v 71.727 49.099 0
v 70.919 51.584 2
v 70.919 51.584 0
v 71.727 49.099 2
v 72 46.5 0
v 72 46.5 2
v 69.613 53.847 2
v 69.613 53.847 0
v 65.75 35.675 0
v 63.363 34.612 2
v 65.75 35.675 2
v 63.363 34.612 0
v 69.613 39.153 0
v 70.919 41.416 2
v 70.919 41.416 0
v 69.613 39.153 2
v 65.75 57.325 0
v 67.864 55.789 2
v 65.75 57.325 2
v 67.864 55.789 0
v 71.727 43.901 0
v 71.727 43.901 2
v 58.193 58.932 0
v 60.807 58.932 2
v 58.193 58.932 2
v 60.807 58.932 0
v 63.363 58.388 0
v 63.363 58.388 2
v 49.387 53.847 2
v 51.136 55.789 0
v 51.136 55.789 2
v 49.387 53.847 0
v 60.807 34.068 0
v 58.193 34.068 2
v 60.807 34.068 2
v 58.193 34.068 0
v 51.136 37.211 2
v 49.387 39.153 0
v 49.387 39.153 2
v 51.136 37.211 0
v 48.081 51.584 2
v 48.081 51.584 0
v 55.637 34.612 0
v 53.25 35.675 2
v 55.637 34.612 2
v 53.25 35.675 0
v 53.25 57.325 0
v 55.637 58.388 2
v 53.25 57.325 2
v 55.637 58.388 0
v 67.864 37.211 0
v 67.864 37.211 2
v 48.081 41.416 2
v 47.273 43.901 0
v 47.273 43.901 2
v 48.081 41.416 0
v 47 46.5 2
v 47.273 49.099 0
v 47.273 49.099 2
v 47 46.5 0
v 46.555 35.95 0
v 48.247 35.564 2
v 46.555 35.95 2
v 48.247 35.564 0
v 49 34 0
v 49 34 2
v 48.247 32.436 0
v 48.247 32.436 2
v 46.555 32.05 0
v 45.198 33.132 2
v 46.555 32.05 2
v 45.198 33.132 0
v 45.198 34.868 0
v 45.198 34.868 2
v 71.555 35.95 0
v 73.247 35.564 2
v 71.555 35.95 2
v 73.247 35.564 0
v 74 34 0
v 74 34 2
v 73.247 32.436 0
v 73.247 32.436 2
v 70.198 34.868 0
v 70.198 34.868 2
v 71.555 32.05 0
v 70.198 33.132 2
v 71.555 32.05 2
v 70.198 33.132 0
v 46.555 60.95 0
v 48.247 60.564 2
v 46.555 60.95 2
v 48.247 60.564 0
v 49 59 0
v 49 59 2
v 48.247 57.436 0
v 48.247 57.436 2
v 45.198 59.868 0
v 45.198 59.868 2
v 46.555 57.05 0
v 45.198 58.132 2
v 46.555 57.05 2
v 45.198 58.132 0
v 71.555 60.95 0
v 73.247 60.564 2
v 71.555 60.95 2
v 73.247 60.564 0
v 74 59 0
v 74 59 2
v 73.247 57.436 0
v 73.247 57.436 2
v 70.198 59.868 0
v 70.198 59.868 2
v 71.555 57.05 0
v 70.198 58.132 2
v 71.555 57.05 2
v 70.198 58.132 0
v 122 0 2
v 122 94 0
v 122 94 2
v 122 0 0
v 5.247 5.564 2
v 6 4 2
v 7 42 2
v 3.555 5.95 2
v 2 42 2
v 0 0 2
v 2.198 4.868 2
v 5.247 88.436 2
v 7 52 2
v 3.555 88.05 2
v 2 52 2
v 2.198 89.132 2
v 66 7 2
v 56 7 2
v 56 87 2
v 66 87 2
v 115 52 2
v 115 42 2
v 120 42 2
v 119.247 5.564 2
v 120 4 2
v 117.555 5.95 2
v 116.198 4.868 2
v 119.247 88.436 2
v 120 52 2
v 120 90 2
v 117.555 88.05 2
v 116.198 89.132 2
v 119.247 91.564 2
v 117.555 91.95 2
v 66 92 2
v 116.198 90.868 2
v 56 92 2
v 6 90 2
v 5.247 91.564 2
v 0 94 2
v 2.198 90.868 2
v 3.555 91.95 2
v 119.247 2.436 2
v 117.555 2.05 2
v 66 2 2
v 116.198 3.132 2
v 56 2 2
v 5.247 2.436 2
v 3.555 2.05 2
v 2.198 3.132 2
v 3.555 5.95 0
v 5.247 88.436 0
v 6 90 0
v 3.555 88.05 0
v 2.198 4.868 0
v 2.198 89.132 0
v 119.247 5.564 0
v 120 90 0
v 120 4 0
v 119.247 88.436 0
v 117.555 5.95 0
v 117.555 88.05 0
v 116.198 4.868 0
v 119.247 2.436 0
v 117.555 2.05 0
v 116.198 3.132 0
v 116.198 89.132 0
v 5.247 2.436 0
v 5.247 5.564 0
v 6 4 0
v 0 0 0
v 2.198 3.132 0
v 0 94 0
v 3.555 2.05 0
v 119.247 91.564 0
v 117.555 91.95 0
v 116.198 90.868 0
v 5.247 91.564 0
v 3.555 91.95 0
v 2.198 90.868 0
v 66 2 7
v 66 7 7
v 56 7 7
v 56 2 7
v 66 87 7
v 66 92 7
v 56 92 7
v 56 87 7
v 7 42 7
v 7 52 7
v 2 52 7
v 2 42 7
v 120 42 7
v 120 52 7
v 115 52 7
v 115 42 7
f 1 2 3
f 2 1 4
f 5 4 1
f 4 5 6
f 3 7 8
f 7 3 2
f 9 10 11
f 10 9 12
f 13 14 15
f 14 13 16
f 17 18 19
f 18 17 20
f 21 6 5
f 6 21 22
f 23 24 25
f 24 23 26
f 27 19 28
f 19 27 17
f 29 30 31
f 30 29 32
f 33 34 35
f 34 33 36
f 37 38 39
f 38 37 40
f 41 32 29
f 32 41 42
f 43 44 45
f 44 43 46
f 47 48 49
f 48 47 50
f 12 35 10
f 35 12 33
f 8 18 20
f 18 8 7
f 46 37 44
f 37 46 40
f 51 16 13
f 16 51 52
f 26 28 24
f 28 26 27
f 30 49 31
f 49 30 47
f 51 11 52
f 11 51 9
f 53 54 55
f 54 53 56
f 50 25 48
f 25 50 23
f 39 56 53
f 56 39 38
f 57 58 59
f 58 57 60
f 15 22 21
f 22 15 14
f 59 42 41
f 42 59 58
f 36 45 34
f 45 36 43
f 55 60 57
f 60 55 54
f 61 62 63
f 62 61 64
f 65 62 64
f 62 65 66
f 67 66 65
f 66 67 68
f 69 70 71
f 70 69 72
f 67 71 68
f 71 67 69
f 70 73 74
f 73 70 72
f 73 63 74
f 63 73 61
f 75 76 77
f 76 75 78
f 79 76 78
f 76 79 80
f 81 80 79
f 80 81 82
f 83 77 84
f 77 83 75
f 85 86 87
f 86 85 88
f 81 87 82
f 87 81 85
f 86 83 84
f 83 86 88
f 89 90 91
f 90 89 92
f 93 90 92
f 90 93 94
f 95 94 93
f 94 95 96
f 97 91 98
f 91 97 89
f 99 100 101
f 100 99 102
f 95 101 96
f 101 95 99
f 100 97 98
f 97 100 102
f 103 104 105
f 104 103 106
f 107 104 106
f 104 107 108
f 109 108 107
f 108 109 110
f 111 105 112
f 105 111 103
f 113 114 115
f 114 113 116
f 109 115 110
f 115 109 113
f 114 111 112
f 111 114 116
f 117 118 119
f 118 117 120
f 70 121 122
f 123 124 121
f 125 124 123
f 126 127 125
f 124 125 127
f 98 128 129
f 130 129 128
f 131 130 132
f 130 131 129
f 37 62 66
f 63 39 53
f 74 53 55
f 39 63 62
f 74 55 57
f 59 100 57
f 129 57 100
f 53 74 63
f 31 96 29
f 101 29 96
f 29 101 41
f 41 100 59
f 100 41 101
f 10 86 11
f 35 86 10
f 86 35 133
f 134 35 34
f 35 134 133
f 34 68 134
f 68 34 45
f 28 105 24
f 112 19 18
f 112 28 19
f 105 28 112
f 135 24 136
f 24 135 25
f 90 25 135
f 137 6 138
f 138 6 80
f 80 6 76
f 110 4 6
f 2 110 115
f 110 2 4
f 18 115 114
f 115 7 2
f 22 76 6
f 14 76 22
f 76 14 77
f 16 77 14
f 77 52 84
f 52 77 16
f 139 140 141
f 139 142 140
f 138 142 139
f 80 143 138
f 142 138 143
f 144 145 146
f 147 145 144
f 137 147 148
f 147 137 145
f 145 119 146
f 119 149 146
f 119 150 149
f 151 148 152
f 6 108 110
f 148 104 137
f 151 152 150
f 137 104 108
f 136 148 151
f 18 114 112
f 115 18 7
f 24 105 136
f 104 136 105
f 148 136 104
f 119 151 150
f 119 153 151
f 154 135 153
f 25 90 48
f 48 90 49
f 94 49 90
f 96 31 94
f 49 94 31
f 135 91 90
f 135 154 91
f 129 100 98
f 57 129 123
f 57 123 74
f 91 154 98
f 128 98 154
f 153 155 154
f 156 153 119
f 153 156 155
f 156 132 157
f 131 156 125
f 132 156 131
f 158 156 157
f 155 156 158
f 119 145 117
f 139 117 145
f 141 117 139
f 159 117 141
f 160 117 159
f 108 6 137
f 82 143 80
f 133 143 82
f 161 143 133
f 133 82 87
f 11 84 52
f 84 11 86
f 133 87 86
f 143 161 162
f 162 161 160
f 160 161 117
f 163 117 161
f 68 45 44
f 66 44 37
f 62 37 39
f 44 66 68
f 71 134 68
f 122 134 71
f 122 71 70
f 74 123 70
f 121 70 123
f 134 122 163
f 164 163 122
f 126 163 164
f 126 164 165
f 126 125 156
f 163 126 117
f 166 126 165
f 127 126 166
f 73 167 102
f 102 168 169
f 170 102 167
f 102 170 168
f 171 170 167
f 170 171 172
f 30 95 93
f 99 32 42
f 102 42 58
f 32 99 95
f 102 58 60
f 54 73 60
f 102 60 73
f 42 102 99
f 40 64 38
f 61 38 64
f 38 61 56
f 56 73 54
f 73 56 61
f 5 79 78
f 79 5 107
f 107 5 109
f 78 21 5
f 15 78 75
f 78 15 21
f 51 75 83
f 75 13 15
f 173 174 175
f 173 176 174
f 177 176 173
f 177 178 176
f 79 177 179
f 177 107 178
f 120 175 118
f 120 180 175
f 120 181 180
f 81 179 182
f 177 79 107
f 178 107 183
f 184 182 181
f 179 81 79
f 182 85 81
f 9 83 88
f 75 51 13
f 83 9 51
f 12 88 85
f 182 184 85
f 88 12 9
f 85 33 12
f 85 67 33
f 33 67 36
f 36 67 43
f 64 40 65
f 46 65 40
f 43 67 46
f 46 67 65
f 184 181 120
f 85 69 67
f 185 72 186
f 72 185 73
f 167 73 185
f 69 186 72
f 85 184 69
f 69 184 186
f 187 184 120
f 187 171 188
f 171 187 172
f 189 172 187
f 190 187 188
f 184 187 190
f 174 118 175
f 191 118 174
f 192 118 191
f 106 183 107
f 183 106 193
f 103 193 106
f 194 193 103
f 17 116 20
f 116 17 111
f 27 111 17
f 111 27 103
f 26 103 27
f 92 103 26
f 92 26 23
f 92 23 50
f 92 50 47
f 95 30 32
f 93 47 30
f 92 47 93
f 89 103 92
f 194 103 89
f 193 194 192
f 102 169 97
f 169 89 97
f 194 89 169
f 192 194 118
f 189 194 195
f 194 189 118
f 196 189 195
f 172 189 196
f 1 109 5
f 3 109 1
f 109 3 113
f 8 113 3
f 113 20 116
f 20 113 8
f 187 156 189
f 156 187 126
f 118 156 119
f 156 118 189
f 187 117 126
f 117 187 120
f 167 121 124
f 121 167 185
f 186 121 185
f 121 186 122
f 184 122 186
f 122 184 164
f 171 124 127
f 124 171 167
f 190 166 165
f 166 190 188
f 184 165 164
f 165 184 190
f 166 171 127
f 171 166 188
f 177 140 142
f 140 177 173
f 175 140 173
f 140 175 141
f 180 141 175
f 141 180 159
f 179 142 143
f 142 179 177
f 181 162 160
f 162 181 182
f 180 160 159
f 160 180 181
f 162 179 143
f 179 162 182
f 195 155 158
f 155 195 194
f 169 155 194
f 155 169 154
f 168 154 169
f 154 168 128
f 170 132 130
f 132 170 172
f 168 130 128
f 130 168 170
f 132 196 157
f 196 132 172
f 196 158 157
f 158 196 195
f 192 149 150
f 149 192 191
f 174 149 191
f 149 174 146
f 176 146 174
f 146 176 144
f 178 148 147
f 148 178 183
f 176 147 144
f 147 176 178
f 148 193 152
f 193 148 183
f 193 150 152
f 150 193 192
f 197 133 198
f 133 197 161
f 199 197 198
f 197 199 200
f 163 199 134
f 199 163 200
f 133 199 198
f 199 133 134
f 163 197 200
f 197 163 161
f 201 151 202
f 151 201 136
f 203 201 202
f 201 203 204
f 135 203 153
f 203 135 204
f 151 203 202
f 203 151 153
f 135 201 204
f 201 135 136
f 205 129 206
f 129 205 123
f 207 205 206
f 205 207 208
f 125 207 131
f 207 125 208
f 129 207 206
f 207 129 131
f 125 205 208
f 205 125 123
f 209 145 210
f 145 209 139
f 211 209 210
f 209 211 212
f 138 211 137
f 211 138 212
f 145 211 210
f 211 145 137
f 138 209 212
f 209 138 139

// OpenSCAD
length=118;
width=90;
thickness=2;
fansize=25;
fanxpos=45;
fanypos=32;
screwint=4;
delta=5;

module uppercase(length,width,thickness){
    cube([length+2*thickness,width+2*thickness,thickness]);
}

module squarefan(size,xpos,ypos,delta){
    flowlength=size-screwint-2*thickness;
    flowwidth=size-screwint-2*thickness;
    translate([xpos+screwint+thickness,ypos+screwint+thickness,-delta]) cube([flowlength,flowwidth,thickness+2*delta]);
    coverscrew(xpos,ypos,screwint,delta);
    coverscrew(xpos+size,ypos,screwint,delta);
    coverscrew(xpos,ypos+size,screwint,delta);
    coverscrew(xpos+size,ypos+size,screwint,delta);
}

module roundfan(size,xpos,ypos,delta){
    flowlength=size-screwint-2*thickness;
    flowwidth=size-screwint-2*thickness;
    translate([xpos+size/2+thickness,ypos+size/2+thickness,-delta]) cylinder(h=2*delta,d=size);
    coverscrew(xpos,ypos,screwint,delta);
    coverscrew(xpos+size,ypos,screwint,delta);
    coverscrew(xpos,ypos+size,screwint,delta);
    coverscrew(xpos+size,ypos+size,screwint,delta);
}

module coverscrew(xpos,ypos,diameter,delta){
    translate([xpos+thickness,ypos+thickness,-delta]) cylinder(h=thickness+2*delta,d=diameter);
}

difference(){
    uppercase(length,width,thickness);
    coverscrew(screwint-2,screwint-2,screwint,delta);
    coverscrew(length-screwint+2,screwint-2,screwint,delta);
    coverscrew(screwint-2,width-screwint+2,screwint,delta);
    coverscrew(length-screwint+2,width-screwint+2,screwint,delta);
    roundfan(fansize,fanxpos,fanypos,delta);
}
translate([(length+2*thickness)/2-delta,thickness,thickness]) cube([2*delta,delta,delta]);
translate([(length+2*thickness)/2-delta,width+thickness-delta,thickness]) cube([2*delta,delta,delta]);
translate([thickness,(width+2*thickness)/2-delta,thickness]) cube([delta,2*delta,delta]);
translate([length+thickness-delta,(width+2*thickness)/2-delta,thickness]) cube([delta,2*delta,delta]);
